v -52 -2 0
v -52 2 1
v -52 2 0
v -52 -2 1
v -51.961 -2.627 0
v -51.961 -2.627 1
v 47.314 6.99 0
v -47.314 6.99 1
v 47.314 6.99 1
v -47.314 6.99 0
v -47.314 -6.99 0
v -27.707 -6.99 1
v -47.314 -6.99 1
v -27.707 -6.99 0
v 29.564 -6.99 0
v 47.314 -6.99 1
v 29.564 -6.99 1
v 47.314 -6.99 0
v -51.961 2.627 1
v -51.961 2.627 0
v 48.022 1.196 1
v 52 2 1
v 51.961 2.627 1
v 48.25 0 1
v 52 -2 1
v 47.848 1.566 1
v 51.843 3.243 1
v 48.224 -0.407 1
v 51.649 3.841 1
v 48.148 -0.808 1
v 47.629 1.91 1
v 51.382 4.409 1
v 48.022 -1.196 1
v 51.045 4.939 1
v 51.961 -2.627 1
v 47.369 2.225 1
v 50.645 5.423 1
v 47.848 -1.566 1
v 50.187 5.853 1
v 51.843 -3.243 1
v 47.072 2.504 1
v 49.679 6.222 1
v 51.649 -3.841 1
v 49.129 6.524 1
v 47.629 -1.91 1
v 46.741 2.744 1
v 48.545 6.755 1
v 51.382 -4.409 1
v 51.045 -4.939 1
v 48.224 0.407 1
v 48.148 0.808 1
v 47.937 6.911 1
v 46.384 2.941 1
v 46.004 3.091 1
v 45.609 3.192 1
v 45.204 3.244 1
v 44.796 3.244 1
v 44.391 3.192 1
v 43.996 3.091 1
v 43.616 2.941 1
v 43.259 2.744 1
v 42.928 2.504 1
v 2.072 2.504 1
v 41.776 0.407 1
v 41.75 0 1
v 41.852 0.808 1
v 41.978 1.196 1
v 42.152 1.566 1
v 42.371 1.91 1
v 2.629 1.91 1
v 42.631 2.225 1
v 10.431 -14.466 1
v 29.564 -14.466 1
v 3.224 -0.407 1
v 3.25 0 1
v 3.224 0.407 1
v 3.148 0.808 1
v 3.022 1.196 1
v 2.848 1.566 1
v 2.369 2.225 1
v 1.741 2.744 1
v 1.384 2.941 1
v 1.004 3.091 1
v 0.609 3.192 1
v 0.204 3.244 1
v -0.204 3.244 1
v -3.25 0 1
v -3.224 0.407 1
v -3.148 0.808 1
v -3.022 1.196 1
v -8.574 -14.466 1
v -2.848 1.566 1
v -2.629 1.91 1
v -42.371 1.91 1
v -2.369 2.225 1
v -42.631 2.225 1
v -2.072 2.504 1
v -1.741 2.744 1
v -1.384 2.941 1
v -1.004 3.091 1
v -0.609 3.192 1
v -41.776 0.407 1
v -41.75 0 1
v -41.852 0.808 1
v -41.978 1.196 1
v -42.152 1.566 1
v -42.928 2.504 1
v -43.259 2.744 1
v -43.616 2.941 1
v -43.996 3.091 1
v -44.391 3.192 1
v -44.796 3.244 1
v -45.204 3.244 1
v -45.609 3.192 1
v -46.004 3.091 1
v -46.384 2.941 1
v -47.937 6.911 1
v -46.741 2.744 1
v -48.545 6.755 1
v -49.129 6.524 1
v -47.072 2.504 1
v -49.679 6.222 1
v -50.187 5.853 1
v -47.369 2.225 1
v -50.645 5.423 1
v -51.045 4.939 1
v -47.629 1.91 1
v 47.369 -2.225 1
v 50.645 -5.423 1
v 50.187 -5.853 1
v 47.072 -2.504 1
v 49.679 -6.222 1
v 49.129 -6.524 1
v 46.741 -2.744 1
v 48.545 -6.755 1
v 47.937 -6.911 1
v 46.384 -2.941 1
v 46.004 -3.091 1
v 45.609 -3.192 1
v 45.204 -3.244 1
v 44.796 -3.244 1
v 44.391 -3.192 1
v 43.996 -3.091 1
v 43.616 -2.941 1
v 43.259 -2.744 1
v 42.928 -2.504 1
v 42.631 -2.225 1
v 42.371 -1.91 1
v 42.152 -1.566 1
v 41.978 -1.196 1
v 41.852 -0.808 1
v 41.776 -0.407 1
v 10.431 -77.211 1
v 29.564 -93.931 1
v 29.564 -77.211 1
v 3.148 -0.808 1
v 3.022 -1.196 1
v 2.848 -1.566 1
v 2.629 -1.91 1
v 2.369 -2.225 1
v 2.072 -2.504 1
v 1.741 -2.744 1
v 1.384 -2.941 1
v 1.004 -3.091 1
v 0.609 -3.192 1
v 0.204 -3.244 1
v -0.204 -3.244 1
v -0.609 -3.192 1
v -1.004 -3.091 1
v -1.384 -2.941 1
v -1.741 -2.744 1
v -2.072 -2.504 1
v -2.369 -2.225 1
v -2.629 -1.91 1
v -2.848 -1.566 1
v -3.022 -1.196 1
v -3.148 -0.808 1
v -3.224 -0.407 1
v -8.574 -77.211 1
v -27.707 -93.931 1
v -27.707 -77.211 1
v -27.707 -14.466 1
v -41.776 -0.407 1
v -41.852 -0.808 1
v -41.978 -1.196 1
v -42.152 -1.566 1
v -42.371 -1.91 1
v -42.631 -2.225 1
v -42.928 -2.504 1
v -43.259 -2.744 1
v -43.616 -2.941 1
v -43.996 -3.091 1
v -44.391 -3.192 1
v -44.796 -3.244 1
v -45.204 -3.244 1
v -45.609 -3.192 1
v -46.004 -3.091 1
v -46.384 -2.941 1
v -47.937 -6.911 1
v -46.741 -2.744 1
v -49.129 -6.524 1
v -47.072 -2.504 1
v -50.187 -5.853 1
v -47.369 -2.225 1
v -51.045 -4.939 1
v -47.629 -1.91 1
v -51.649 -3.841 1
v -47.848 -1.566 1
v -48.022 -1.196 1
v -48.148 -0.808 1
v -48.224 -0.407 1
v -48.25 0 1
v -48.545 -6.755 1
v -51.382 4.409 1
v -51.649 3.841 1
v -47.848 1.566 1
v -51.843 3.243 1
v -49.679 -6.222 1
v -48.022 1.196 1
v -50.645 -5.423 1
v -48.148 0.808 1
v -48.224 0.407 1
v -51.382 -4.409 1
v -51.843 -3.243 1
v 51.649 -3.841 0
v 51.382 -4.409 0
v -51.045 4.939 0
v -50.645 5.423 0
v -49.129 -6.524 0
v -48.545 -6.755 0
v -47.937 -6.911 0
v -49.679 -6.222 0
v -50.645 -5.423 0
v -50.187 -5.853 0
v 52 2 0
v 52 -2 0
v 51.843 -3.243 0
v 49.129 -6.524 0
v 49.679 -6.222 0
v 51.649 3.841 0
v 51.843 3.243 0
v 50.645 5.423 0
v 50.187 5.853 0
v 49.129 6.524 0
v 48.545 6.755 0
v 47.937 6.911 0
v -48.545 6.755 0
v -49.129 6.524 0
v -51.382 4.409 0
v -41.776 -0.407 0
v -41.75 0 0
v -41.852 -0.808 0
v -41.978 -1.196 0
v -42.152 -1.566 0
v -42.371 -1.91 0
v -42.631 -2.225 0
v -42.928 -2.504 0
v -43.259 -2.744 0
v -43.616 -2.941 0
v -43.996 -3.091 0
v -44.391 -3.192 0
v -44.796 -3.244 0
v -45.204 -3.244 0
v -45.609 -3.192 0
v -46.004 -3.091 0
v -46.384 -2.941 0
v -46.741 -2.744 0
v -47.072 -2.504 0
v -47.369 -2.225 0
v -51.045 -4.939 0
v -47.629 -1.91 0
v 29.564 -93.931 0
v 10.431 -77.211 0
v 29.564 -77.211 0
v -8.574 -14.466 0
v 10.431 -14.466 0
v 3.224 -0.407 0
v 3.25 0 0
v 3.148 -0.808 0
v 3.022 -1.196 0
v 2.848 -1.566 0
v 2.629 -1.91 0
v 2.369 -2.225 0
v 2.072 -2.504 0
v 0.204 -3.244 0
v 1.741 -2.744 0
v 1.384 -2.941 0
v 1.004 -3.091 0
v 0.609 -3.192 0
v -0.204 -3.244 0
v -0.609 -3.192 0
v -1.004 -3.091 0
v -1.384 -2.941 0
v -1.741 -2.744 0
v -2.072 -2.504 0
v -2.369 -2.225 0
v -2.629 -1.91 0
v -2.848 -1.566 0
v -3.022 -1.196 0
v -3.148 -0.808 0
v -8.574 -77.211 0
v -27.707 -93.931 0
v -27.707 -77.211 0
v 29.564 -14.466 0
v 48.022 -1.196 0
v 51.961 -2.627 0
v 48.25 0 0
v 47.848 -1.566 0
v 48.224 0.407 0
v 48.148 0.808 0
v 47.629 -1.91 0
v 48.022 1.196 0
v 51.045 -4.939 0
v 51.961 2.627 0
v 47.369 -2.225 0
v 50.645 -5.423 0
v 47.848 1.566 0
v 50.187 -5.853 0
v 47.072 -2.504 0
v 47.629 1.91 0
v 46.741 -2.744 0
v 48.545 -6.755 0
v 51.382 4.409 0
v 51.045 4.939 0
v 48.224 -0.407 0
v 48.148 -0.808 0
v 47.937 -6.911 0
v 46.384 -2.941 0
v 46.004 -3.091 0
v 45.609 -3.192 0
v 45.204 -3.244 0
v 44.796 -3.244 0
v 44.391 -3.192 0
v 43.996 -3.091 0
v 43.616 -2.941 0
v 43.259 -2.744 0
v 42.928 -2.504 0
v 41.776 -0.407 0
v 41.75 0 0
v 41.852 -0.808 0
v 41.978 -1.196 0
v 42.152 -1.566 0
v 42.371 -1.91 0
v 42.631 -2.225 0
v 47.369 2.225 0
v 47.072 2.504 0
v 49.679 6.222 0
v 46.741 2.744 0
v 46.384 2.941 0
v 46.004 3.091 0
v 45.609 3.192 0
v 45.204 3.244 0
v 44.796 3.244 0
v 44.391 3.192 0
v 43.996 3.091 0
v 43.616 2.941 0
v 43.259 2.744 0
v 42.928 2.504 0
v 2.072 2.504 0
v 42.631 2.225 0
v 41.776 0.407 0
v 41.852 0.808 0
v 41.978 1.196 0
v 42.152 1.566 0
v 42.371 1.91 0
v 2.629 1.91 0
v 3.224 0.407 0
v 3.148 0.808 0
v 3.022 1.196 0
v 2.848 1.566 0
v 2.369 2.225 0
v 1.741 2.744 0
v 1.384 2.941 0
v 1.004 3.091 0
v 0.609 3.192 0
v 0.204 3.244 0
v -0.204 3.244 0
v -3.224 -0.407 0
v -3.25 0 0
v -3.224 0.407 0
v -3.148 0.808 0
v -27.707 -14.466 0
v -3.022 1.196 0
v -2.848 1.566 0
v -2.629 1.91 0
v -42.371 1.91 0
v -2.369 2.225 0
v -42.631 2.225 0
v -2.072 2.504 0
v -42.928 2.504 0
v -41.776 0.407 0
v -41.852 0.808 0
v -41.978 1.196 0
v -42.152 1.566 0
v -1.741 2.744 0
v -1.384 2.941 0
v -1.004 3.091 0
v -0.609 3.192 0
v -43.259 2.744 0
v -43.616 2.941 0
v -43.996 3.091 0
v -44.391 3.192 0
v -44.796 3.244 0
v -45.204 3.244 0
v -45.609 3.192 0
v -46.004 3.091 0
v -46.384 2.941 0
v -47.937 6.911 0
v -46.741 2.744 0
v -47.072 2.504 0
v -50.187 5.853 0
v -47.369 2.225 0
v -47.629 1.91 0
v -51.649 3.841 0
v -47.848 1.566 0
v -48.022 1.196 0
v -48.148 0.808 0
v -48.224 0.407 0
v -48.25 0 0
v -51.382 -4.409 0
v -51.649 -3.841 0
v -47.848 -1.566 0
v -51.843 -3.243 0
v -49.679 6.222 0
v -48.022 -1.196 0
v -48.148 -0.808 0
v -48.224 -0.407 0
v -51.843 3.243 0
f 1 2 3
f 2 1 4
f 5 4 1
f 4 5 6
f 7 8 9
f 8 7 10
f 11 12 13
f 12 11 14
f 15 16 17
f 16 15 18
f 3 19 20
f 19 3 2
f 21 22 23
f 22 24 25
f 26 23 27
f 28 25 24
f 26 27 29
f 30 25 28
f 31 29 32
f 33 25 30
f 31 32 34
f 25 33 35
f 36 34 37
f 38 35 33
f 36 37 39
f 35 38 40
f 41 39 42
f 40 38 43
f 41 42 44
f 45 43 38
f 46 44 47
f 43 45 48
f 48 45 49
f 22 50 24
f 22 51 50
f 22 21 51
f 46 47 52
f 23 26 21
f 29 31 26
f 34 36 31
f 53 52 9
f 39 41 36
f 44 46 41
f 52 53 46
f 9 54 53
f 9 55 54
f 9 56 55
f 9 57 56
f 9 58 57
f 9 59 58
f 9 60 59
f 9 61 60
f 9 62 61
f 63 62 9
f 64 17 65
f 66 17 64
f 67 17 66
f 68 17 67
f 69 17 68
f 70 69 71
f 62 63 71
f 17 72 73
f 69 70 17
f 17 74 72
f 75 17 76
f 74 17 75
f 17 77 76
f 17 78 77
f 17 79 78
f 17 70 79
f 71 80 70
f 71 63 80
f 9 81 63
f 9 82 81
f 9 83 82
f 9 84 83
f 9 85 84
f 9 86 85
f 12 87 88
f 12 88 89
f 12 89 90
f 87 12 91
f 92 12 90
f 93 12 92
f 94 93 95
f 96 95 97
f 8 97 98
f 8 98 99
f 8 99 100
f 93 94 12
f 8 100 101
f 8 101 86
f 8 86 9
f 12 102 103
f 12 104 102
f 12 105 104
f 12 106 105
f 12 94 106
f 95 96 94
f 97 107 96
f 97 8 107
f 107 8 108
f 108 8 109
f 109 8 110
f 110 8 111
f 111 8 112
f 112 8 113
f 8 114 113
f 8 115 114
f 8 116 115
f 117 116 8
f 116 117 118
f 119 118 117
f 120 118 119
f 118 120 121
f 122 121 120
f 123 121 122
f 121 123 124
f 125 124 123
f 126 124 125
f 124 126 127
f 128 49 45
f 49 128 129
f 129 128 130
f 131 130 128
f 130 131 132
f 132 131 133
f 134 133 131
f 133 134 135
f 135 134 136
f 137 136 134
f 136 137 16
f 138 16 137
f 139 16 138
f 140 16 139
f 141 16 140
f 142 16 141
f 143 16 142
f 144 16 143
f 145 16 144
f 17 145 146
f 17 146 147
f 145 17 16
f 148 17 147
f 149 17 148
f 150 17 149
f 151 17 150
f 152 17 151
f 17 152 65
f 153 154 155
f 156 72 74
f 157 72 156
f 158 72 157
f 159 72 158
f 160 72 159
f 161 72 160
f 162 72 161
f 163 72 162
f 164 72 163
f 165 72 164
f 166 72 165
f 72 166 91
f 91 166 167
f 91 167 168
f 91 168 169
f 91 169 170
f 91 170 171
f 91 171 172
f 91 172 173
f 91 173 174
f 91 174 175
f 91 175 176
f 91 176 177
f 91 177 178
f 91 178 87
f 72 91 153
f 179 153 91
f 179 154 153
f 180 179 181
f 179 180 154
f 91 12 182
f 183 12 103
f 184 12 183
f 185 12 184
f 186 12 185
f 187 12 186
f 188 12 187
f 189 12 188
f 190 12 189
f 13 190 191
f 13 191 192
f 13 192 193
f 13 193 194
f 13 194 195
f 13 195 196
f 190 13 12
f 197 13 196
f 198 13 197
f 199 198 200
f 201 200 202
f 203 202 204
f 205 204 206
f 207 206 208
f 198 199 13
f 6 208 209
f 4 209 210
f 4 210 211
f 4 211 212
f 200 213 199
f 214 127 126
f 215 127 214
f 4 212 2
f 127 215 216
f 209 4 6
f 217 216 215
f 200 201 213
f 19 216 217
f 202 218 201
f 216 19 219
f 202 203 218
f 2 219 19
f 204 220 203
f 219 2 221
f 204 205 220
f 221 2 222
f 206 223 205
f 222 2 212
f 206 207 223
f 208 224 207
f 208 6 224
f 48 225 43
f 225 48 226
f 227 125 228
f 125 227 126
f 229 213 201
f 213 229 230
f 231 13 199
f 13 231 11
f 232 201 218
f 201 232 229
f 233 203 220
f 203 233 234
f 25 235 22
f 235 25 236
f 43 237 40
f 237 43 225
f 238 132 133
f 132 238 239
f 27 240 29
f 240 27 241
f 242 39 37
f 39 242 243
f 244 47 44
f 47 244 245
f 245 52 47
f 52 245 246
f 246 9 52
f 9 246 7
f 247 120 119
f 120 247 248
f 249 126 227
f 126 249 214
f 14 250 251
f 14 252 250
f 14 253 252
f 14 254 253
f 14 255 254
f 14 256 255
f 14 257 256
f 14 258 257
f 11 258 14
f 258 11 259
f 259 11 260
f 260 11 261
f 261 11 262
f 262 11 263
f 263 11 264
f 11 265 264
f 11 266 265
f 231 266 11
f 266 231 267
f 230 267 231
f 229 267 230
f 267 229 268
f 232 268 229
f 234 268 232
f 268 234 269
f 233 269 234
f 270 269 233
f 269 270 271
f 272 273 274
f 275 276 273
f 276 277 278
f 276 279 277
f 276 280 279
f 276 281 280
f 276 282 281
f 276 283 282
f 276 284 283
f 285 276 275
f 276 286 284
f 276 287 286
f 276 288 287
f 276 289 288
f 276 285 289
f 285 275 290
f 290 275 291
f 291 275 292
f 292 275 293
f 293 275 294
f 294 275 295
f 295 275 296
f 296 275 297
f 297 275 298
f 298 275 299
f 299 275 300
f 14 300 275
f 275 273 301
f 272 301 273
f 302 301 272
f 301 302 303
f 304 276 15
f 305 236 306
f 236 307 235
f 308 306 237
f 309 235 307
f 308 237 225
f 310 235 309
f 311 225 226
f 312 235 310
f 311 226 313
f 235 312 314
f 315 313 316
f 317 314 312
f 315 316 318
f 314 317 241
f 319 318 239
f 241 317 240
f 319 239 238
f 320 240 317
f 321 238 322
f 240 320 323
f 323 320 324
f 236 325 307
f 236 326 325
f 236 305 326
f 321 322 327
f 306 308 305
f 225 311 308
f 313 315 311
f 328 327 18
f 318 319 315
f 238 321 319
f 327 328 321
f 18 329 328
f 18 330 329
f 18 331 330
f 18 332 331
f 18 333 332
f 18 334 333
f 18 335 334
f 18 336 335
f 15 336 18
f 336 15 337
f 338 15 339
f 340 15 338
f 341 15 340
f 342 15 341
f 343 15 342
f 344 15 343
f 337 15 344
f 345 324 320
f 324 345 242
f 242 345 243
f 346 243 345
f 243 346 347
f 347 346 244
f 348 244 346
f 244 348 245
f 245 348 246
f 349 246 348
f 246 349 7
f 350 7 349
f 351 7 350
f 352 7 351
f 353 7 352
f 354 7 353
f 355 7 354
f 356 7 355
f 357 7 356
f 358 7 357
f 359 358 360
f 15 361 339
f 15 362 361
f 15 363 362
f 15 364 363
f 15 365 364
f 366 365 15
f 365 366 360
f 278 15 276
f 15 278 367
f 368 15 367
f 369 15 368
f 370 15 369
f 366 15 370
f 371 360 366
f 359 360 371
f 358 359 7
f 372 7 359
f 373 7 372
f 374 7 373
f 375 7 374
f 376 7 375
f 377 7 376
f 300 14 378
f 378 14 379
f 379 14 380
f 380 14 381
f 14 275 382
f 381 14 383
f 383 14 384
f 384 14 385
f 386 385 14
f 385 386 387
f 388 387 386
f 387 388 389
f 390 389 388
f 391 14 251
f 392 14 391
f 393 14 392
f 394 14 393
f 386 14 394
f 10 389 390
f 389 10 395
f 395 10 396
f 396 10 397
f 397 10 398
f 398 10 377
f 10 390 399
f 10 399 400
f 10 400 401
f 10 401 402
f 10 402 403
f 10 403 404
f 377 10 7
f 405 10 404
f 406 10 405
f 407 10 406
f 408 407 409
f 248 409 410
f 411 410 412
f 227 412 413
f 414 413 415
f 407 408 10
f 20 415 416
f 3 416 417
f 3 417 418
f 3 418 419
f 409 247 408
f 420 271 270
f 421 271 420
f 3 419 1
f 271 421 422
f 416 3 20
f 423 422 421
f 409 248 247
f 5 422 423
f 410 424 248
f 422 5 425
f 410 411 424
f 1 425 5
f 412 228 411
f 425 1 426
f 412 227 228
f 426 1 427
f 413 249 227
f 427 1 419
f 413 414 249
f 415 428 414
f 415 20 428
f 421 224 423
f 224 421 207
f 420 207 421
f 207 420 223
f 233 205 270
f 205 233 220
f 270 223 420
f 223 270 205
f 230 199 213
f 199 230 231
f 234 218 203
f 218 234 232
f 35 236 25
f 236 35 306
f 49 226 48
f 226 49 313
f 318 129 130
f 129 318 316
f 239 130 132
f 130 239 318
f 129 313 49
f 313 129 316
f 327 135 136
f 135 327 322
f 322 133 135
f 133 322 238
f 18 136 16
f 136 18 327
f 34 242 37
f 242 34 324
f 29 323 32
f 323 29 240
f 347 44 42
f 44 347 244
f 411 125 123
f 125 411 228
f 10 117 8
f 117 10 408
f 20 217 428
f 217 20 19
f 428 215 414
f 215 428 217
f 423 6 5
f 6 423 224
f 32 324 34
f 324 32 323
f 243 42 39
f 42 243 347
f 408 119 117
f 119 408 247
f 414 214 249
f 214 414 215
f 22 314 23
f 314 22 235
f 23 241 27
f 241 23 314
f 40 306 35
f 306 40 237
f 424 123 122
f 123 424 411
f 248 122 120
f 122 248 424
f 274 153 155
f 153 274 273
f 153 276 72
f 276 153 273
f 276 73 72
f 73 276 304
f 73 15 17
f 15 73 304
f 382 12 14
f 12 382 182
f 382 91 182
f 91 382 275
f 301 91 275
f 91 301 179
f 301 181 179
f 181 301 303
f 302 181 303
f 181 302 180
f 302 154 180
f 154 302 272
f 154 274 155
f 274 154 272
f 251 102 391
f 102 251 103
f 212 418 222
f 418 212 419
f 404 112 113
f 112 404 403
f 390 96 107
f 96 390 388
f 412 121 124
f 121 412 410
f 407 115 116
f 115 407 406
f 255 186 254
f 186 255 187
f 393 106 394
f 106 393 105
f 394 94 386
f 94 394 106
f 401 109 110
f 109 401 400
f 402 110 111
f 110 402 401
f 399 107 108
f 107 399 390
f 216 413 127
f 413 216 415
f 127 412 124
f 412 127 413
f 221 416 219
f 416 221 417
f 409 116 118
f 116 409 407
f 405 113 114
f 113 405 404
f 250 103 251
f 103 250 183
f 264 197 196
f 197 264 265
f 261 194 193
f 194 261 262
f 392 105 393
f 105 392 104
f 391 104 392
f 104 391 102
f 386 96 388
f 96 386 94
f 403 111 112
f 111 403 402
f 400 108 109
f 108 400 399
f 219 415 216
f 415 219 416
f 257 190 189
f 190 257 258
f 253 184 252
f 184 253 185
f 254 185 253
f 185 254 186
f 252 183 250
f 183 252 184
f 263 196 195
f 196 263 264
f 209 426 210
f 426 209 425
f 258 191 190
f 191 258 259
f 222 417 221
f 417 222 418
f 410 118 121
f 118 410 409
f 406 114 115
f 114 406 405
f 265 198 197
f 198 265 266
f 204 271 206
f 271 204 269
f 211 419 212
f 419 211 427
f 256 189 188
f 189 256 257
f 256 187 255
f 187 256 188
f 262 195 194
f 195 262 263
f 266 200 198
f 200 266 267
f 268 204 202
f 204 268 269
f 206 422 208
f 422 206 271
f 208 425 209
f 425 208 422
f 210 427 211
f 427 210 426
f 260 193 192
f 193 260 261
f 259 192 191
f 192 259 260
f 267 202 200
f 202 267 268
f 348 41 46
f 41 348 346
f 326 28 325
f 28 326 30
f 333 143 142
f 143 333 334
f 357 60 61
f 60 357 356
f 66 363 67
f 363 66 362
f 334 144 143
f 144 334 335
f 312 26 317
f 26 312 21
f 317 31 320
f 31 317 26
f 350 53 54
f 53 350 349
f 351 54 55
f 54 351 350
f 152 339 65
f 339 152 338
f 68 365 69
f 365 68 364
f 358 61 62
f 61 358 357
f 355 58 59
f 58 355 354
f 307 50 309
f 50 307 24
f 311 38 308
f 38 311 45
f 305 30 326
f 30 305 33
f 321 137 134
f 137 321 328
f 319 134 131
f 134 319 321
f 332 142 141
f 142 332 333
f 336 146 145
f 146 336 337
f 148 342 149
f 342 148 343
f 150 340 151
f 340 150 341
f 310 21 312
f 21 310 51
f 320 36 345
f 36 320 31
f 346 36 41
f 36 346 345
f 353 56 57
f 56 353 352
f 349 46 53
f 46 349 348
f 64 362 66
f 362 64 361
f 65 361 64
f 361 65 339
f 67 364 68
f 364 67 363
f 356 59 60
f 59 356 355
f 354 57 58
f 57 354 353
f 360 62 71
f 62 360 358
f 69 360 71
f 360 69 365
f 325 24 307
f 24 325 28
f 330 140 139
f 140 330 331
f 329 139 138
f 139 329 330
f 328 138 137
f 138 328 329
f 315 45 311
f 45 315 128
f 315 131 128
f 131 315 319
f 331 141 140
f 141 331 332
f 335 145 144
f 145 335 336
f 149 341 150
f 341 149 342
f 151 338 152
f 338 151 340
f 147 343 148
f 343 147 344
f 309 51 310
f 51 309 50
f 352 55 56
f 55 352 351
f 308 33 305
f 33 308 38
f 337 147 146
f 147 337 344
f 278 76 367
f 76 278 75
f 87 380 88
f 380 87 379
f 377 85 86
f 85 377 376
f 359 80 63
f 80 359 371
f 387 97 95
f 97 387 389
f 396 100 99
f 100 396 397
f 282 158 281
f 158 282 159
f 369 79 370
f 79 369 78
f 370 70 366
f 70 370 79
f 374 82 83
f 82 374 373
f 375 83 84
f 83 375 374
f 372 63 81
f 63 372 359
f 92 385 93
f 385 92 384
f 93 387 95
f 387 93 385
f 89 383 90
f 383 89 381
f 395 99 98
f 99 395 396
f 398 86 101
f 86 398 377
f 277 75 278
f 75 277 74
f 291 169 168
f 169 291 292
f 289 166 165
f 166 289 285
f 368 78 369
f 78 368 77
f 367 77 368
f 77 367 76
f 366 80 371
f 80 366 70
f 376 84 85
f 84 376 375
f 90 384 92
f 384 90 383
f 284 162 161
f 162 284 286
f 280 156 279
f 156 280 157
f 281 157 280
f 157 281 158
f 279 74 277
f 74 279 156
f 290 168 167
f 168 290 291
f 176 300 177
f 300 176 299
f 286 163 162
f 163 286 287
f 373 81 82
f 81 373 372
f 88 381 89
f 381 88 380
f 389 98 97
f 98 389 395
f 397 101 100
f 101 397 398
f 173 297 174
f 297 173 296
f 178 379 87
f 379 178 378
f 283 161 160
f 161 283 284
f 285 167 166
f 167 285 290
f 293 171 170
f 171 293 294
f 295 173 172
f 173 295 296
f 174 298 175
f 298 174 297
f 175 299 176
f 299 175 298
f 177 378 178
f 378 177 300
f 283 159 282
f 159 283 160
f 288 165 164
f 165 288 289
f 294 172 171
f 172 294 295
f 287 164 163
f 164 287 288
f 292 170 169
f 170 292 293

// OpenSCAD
$fn = 50;


difference() {
	union() {
		translate(v = [0, 0, 0]) {
			rotate(a = [0, 0, 0]) {
				hull() {
					translate(v = [-47.0000000000, 2.0000000000, 0]) {
						rotate(a = [0, 0, 0]) {
							translate(v = [0, 0, 0]) {
								rotate(a = [0, 0, 0]) {
									cylinder(h = 1, r = 5);
								}
							}
						}
					}
					translate(v = [47.0000000000, 2.0000000000, 0]) {
						rotate(a = [0, 0, 0]) {
							translate(v = [0, 0, 0]) {
								rotate(a = [0, 0, 0]) {
									cylinder(h = 1, r = 5);
								}
							}
						}
					}
					translate(v = [-47.0000000000, -2.0000000000, 0]) {
						rotate(a = [0, 0, 0]) {
							translate(v = [0, 0, 0]) {
								rotate(a = [0, 0, 0]) {
									cylinder(h = 1, r = 5);
								}
							}
						}
					}
					translate(v = [47.0000000000, -2.0000000000, 0]) {
						rotate(a = [0, 0, 0]) {
							translate(v = [0, 0, 0]) {
								rotate(a = [0, 0, 0]) {
									cylinder(h = 1, r = 5);
								}
							}
						}
					}
				}
			}
		}
		translate(v = [0, 0, 0]) {
			rotate(a = [0, 0, 0]) {
				linear_extrude(height = 1) {
					text(font = "DejaVu Sans Mono:style=Bold", halign = "center", size = 95, text = "I", valign = "top");
				}
			}
		}
	}
	union() {
		translate(v = [-45.0000000000, 0.0000000000, -125.0000000000]) {
			rotate(a = [0, 0, 0]) {
				cylinder(h = 250, r = 3.2500000000);
			}
		}
		translate(v = [45.0000000000, 0.0000000000, -125.0000000000]) {
			rotate(a = [0, 0, 0]) {
				cylinder(h = 250, r = 3.2500000000);
			}
		}
		translate(v = [45.0000000000, 0.0000000000, -125.0000000000]) {
			rotate(a = [0, 0, 0]) {
				cylinder(h = 250, r = 3.2500000000);
			}
		}
		translate(v = [0, 0, -125.0000000000]) {
			rotate(a = [0, 0, 0]) {
				cylinder(h = 250, r = 3.2500000000);
			}
		}
	}
}
